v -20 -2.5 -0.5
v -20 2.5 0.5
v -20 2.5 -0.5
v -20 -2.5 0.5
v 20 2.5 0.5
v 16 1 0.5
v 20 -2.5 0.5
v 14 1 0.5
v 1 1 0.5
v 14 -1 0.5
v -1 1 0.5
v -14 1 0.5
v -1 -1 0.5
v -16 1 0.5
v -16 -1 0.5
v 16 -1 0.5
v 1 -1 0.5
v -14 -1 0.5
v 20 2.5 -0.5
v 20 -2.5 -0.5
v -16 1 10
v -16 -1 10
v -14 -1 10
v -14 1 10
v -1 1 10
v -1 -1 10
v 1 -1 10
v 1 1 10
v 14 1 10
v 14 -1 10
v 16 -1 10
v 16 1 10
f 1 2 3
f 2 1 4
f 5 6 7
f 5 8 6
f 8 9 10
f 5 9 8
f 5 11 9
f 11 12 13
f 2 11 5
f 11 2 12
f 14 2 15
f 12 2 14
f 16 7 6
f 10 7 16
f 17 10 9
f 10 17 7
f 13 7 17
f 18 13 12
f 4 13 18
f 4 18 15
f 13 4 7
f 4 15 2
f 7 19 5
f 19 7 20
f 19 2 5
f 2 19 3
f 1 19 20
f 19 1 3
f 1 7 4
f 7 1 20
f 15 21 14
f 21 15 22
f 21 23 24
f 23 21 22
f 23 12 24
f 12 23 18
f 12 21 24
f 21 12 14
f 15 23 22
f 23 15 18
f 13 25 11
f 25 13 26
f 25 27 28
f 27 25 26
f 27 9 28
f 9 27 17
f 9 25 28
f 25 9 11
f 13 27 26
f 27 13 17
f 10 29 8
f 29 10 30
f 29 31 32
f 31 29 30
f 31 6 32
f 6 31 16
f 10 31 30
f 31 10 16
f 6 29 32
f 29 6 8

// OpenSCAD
cube([40,5,1], center=true);
translate([-15,0, 5]) cube([2,2,10], center=true);
translate([0,0, 5]) cube([2,2,10], center=true);
translate([15,0, 5]) cube([2,2,10], center=true);
